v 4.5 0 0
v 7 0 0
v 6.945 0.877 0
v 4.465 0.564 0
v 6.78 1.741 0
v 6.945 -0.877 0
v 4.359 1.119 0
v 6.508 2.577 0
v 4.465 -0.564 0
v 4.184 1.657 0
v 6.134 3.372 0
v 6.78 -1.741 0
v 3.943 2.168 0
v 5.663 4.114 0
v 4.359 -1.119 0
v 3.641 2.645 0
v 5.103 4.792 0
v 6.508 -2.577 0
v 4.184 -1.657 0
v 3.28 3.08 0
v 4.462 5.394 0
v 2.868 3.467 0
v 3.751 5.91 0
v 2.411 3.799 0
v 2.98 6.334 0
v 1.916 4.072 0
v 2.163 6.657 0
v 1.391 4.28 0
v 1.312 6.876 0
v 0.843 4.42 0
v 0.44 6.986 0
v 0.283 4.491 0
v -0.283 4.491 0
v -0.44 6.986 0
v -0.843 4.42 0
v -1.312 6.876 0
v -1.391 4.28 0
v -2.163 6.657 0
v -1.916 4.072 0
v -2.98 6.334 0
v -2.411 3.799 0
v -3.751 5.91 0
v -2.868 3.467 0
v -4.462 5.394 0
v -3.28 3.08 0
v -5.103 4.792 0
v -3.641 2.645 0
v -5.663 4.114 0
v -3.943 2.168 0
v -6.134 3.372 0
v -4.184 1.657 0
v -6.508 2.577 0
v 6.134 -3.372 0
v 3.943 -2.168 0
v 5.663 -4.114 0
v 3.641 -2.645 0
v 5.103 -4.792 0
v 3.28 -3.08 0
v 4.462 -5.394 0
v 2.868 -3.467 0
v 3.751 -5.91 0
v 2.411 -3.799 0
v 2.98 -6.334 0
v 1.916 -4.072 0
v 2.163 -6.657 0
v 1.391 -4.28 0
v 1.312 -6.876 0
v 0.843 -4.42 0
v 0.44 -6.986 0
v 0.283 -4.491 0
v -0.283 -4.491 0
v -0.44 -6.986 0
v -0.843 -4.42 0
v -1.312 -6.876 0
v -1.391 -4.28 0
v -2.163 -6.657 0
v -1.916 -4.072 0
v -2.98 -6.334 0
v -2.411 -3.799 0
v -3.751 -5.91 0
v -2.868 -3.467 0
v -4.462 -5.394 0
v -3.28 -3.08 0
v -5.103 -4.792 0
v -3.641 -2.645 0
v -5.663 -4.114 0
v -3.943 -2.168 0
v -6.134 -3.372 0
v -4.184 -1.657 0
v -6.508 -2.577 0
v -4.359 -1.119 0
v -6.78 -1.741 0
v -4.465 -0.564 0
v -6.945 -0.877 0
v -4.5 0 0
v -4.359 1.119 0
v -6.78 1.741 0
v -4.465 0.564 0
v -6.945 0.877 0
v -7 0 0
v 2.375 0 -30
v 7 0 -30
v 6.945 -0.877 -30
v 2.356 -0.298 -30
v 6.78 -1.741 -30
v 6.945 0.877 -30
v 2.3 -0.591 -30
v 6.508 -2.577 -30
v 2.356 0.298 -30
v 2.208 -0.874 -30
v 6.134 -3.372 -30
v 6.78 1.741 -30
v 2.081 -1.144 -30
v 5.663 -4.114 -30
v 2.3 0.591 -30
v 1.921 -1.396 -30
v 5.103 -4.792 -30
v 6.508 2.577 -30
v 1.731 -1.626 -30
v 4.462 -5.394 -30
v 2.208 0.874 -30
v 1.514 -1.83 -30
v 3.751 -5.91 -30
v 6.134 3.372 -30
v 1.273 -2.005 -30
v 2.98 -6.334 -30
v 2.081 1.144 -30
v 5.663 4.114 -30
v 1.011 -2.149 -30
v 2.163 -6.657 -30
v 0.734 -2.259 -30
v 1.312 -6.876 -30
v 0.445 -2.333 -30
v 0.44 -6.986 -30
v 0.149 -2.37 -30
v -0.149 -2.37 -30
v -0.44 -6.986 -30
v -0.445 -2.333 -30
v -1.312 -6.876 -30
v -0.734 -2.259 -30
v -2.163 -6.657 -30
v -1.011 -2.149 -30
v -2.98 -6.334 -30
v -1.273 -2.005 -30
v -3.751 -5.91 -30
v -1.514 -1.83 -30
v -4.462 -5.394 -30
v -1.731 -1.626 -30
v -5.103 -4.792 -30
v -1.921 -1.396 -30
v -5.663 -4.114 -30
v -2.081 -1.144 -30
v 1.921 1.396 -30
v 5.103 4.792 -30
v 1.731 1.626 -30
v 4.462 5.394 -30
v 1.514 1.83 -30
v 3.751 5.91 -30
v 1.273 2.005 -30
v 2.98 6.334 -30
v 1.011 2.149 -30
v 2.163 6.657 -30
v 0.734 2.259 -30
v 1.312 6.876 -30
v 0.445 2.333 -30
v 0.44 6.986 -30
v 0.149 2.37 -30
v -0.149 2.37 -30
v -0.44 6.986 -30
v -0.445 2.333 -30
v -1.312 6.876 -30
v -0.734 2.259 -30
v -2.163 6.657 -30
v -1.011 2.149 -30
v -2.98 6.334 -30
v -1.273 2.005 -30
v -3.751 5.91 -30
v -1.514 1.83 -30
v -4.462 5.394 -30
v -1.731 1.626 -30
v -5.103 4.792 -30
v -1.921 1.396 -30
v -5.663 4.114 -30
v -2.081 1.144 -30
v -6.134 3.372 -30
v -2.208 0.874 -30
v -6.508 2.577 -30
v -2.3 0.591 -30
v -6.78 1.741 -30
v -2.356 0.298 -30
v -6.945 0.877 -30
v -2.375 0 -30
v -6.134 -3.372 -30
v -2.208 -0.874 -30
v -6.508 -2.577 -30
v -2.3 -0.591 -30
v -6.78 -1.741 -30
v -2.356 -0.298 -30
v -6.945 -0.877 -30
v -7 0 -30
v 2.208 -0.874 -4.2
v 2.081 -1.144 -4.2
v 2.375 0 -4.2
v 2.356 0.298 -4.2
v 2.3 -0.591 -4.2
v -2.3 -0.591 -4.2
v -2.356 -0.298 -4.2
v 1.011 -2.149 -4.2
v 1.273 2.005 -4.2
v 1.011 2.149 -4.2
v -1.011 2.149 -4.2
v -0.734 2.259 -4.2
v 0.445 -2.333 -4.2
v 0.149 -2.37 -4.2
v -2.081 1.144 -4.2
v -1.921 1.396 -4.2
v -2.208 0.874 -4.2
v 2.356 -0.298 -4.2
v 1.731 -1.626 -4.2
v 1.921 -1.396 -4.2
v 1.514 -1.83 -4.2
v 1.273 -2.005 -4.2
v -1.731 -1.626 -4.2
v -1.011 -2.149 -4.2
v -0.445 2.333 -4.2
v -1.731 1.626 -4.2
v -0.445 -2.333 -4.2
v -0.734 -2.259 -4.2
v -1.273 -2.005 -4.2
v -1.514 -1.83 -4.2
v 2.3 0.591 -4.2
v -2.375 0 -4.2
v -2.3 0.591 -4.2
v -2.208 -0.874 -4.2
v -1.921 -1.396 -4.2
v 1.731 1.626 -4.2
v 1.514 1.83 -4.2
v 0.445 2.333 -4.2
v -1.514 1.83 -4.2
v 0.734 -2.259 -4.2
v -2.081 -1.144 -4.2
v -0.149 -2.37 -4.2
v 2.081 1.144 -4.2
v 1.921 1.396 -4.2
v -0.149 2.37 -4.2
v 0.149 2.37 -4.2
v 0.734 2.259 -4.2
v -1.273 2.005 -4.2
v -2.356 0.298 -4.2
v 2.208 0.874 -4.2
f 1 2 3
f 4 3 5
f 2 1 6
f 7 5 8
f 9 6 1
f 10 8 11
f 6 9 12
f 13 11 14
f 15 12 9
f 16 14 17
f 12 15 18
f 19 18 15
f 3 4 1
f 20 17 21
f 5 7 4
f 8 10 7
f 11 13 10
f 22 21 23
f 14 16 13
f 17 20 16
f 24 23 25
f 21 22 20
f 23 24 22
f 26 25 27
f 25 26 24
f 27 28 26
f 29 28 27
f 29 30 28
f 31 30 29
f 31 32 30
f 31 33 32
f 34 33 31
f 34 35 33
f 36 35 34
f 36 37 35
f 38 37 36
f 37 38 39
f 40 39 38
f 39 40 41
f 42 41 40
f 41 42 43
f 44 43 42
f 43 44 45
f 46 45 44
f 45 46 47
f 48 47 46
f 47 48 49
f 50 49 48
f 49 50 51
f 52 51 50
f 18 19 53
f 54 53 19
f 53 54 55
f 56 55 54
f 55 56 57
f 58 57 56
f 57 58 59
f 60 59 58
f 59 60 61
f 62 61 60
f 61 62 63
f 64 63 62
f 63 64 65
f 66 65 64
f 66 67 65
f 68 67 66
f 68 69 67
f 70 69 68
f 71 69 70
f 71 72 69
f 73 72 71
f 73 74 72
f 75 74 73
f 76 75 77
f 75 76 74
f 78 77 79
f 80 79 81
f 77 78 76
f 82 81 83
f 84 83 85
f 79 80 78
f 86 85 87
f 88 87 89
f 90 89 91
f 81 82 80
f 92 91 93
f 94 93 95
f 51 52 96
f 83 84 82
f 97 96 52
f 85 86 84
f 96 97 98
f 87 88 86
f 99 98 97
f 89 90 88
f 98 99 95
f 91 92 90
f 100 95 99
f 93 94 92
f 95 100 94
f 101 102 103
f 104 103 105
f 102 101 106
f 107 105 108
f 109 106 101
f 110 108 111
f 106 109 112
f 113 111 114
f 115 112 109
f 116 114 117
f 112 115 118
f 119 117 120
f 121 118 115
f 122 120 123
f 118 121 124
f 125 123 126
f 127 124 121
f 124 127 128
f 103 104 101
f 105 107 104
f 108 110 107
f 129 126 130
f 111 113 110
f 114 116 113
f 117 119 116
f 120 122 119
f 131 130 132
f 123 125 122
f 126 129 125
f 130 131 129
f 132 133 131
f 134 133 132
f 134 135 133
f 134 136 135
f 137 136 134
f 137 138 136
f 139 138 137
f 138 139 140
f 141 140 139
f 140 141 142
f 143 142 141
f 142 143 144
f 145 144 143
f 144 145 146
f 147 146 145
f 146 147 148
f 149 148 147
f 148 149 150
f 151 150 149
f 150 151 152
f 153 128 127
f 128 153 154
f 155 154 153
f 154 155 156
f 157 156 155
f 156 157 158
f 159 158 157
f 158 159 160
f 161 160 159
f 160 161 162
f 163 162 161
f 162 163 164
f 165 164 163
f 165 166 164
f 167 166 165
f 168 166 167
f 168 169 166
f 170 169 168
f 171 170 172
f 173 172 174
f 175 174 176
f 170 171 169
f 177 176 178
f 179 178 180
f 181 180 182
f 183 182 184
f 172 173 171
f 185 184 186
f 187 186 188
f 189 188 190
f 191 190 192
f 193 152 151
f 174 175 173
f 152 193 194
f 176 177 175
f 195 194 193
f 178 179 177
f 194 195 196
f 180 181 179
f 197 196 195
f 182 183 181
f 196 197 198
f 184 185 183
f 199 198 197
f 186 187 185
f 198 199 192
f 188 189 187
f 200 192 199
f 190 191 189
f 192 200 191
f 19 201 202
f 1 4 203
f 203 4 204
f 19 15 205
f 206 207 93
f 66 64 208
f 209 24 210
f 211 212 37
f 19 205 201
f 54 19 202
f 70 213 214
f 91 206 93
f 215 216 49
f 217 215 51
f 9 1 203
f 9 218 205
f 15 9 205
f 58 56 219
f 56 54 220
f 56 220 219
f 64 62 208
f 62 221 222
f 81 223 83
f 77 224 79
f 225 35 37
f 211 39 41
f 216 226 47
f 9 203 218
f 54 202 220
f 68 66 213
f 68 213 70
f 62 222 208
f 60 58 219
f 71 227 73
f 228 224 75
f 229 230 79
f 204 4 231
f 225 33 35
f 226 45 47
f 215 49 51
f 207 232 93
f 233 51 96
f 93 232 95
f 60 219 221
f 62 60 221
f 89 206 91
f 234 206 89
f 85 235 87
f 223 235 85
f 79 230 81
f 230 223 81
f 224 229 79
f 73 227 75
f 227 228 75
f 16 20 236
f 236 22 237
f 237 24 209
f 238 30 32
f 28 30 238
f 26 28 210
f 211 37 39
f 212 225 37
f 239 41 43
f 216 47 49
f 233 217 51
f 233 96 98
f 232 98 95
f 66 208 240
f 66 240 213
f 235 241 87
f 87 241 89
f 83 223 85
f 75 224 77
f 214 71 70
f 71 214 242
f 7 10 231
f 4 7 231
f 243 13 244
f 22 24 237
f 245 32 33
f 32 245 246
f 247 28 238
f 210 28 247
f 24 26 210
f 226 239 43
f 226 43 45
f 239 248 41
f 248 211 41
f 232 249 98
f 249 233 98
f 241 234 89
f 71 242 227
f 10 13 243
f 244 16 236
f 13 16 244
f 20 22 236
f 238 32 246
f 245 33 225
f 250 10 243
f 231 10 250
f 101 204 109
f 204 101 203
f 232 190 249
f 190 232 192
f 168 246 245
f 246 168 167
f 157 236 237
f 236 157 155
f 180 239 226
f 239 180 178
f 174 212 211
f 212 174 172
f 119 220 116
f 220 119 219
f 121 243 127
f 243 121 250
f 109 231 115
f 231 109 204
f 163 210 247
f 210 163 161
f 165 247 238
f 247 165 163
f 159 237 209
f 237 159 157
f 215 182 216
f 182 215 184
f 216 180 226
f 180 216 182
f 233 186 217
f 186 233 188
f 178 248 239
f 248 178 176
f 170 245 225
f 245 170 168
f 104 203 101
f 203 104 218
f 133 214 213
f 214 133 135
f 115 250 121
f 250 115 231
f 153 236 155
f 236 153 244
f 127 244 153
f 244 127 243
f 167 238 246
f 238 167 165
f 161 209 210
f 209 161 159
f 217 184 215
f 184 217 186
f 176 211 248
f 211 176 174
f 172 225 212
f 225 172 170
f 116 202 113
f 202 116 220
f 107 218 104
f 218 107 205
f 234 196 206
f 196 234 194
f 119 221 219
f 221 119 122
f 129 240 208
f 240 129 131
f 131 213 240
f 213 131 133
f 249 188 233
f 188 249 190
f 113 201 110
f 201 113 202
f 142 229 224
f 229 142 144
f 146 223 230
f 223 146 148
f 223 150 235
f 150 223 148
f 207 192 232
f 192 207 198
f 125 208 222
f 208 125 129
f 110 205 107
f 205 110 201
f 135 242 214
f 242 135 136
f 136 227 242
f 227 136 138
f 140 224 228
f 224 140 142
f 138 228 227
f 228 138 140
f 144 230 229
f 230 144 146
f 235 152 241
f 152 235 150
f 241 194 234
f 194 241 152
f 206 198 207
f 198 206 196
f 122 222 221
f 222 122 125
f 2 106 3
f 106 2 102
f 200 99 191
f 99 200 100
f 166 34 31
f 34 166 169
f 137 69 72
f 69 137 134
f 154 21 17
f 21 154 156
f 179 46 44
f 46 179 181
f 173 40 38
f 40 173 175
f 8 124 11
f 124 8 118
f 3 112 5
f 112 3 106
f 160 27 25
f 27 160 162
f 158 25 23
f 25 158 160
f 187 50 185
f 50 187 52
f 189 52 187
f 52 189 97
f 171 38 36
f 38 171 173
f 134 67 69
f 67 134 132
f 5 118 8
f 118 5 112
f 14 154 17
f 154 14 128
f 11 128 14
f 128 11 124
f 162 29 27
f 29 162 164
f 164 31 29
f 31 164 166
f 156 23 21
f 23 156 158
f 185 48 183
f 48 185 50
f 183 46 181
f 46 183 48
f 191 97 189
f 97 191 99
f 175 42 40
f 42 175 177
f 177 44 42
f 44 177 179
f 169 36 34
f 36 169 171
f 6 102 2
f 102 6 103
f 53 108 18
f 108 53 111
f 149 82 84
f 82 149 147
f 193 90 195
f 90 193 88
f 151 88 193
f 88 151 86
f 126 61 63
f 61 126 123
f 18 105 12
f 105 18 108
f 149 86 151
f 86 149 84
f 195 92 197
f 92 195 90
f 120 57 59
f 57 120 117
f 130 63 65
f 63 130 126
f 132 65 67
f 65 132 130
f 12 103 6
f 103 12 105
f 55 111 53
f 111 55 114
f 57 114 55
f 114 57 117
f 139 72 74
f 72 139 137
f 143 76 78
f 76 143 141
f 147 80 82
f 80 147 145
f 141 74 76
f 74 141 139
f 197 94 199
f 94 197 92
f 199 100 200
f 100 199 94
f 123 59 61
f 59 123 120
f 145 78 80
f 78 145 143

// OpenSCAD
$fn = 50;


difference() {
	union() {
		translate(v = [0, 0, -30.0000000000]) {
			cylinder(h = 30, r = 7.0000000000);
		}
		cylinder(h = 0, r = 17.0000000000);
	}
	union() {
		translate(v = [0, 0, 0]) {
			rotate(a = [0, 0, 0]) {
				difference() {
					union() {
						#translate(v = [0, 0, -30.0000000000]) {
							cylinder(h = 30, r = 2.2500000000);
						}
						#translate(v = [0, 0, -4.2000000000]) {
							cylinder(h = 4.2000000000, r = 7.0000000000, r1 = 2.3750000000, r2 = 4.5000000000);
						}
						#translate(v = [0, 0, -30.0000000000]) {
							cylinder(h = 30, r = 2.3750000000);
						}
						#translate(v = [0, 0, -30.0000000000]) {
							cylinder(h = 30, r = 2.2500000000);
						}
					}
					union();
				}
			}
		}
	}
}
